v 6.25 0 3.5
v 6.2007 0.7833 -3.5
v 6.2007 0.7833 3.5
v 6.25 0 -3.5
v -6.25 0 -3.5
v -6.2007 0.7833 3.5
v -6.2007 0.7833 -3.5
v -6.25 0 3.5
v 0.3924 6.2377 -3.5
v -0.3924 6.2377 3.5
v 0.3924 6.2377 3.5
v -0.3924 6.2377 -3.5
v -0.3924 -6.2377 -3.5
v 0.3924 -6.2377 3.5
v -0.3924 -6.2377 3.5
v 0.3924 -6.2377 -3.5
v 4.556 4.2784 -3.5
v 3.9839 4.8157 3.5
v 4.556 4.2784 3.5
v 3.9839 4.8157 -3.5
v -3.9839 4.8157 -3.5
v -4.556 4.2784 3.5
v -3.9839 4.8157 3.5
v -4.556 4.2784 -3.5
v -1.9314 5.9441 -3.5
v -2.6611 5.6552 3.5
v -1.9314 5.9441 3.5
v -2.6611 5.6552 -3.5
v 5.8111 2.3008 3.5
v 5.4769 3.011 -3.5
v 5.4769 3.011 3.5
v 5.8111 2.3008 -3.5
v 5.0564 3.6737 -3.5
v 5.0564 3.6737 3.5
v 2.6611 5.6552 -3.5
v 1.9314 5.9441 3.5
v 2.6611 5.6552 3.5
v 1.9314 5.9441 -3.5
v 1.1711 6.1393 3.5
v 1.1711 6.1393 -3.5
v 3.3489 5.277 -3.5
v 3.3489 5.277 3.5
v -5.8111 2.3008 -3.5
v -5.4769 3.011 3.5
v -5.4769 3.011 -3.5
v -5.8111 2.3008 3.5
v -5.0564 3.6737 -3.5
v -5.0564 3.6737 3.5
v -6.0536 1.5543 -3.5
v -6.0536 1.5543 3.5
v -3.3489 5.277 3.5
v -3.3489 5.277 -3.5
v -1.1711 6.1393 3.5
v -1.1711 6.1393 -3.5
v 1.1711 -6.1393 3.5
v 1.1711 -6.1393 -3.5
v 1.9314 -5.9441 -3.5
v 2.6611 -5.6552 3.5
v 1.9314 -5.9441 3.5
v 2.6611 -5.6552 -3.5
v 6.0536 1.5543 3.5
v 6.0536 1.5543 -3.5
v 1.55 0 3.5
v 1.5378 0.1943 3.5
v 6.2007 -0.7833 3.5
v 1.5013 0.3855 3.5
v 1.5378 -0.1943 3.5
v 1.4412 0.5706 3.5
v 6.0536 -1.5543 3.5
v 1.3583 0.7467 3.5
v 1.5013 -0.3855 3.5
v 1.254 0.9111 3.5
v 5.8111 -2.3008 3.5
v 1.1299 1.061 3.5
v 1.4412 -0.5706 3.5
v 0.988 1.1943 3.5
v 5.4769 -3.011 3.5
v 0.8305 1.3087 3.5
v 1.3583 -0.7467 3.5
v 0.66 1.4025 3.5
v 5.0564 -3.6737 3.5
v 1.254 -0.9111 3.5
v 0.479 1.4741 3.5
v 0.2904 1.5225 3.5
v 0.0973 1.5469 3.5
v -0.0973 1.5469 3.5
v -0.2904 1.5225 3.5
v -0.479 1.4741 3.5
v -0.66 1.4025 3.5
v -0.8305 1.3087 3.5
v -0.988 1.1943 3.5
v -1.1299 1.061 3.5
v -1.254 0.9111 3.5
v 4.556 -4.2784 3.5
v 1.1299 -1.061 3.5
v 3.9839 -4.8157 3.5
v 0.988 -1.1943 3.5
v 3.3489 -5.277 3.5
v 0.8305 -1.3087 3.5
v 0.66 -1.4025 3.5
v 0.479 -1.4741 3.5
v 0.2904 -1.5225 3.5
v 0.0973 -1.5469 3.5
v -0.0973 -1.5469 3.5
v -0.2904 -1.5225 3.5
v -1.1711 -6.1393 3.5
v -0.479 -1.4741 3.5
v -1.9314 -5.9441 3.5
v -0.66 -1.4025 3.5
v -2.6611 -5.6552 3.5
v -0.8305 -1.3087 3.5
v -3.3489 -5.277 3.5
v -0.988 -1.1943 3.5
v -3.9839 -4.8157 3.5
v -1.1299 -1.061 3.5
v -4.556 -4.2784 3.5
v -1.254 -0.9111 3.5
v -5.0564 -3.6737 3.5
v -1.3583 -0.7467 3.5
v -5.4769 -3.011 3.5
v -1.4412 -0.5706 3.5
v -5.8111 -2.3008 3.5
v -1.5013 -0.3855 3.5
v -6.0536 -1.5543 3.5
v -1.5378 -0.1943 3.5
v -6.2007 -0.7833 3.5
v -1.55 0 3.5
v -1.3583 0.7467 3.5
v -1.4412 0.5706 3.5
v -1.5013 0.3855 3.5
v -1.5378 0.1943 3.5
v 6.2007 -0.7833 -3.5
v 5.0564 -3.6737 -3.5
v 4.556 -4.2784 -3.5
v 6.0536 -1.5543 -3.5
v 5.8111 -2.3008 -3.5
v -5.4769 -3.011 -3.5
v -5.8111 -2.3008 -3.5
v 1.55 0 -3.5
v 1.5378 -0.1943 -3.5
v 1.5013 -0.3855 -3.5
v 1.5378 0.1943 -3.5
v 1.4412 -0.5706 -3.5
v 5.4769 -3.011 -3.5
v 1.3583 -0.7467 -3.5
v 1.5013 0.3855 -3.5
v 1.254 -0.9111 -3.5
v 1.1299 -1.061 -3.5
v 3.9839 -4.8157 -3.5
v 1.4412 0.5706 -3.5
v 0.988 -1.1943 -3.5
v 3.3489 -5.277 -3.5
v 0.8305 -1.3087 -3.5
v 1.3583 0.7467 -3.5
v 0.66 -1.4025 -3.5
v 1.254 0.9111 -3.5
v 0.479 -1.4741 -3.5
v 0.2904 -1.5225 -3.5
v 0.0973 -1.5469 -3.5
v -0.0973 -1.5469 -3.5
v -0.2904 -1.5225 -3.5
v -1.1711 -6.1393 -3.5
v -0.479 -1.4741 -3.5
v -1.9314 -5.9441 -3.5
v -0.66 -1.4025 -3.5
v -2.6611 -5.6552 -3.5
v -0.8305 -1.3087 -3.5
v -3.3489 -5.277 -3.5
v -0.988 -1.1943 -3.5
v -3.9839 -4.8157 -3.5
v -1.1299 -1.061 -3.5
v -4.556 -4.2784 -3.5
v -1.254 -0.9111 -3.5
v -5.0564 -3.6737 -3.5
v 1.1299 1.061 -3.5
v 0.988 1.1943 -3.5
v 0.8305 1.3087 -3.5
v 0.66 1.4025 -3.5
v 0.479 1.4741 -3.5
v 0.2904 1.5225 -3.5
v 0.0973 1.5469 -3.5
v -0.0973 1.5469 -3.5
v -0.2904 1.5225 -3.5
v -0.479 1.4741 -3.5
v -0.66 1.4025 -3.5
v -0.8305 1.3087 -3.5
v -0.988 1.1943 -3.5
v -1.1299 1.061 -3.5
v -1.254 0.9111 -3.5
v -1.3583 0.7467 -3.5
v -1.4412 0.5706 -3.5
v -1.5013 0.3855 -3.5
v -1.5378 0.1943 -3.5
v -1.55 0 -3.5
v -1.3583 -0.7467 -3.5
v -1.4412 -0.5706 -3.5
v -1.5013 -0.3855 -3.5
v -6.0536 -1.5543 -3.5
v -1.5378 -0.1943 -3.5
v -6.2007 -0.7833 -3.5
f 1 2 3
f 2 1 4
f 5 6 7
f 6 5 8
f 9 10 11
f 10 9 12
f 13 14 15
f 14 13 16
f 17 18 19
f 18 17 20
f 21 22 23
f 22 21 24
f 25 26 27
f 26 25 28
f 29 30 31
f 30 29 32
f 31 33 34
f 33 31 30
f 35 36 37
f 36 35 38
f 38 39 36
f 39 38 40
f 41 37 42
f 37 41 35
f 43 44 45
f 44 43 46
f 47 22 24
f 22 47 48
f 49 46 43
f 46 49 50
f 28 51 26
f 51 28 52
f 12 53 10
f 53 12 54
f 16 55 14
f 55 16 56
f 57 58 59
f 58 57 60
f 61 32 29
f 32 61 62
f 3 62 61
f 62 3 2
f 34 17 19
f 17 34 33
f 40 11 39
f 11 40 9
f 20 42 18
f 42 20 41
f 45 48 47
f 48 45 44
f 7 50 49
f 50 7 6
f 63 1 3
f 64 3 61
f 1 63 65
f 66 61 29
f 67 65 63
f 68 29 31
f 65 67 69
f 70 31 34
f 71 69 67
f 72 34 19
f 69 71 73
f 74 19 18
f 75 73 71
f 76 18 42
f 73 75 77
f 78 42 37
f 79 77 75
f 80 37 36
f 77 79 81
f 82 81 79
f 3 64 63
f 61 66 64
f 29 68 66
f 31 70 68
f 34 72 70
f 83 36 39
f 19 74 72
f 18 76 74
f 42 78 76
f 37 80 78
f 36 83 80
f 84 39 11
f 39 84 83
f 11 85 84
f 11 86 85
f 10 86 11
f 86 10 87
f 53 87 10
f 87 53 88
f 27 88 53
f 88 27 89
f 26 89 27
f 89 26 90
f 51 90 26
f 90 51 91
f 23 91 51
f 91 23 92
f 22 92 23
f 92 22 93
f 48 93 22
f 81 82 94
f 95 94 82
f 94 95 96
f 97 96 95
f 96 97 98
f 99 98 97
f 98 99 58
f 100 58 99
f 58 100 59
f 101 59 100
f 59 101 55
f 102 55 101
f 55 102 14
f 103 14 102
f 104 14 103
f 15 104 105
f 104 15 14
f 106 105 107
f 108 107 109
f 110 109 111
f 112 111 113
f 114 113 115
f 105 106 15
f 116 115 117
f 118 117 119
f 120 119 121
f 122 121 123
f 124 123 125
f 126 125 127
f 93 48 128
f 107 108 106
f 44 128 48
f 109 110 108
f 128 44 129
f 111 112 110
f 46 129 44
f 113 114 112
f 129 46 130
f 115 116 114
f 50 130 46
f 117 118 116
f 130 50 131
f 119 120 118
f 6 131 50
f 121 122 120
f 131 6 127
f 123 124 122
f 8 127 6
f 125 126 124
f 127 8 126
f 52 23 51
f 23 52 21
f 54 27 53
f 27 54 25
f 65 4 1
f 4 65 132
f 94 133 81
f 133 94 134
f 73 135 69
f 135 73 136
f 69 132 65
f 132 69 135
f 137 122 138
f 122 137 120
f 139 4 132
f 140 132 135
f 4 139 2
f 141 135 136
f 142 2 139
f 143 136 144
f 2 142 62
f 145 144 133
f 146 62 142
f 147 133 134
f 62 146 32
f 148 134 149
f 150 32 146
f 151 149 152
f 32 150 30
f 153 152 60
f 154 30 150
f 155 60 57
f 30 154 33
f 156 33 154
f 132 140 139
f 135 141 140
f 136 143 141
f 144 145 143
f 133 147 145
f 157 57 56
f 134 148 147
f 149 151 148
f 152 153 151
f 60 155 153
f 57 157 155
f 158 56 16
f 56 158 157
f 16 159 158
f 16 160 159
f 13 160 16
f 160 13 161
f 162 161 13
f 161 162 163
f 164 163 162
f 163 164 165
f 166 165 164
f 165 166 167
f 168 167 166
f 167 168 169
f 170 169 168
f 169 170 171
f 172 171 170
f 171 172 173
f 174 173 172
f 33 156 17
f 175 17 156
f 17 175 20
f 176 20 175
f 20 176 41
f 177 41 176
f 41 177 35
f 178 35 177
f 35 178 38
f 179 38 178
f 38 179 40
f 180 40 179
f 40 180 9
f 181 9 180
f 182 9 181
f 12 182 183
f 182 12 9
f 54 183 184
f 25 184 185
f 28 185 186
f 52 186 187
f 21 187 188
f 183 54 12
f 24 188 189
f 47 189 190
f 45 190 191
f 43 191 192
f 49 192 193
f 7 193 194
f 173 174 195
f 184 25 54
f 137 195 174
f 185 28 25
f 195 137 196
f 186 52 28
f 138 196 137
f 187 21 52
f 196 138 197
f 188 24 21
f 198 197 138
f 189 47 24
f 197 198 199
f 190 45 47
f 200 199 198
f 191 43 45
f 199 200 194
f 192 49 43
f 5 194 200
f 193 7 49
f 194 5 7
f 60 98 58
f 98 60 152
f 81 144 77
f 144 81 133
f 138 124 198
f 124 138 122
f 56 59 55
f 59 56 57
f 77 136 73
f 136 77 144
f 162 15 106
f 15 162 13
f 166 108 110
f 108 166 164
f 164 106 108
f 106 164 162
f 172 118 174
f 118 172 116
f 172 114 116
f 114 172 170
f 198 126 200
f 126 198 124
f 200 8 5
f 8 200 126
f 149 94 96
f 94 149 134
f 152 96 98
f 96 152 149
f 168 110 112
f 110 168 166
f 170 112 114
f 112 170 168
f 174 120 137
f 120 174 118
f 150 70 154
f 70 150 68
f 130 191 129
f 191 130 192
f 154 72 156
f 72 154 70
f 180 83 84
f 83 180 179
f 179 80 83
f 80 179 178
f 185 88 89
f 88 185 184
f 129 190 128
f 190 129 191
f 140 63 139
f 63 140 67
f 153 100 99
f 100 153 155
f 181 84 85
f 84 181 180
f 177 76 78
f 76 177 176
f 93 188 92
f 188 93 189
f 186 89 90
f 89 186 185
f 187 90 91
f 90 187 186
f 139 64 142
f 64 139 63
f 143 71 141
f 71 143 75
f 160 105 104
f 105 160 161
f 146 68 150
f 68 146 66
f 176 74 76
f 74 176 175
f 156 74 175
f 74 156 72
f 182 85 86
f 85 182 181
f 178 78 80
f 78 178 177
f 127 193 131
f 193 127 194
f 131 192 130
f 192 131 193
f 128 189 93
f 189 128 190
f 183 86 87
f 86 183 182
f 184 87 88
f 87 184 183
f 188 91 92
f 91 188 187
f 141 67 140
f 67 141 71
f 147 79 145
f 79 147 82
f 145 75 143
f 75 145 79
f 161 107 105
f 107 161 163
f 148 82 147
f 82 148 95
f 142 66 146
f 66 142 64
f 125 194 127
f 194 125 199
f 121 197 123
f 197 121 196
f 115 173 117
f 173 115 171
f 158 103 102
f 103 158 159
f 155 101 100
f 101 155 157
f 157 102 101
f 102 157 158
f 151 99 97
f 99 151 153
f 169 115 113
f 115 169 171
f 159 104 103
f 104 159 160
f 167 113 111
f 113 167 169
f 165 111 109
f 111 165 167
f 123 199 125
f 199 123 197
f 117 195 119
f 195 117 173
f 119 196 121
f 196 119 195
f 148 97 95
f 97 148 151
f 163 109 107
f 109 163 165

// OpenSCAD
$fn = 50;


difference() {
	union() {
		translate(v = [0, 0, -3.5000000000]) {
			cylinder(h = 7, r = 6.2500000000);
		}
	}
	union() {
		translate(v = [0, 0, -100.0000000000]) {
			cylinder(h = 200, r = 1.5500000000);
		}
	}
}
